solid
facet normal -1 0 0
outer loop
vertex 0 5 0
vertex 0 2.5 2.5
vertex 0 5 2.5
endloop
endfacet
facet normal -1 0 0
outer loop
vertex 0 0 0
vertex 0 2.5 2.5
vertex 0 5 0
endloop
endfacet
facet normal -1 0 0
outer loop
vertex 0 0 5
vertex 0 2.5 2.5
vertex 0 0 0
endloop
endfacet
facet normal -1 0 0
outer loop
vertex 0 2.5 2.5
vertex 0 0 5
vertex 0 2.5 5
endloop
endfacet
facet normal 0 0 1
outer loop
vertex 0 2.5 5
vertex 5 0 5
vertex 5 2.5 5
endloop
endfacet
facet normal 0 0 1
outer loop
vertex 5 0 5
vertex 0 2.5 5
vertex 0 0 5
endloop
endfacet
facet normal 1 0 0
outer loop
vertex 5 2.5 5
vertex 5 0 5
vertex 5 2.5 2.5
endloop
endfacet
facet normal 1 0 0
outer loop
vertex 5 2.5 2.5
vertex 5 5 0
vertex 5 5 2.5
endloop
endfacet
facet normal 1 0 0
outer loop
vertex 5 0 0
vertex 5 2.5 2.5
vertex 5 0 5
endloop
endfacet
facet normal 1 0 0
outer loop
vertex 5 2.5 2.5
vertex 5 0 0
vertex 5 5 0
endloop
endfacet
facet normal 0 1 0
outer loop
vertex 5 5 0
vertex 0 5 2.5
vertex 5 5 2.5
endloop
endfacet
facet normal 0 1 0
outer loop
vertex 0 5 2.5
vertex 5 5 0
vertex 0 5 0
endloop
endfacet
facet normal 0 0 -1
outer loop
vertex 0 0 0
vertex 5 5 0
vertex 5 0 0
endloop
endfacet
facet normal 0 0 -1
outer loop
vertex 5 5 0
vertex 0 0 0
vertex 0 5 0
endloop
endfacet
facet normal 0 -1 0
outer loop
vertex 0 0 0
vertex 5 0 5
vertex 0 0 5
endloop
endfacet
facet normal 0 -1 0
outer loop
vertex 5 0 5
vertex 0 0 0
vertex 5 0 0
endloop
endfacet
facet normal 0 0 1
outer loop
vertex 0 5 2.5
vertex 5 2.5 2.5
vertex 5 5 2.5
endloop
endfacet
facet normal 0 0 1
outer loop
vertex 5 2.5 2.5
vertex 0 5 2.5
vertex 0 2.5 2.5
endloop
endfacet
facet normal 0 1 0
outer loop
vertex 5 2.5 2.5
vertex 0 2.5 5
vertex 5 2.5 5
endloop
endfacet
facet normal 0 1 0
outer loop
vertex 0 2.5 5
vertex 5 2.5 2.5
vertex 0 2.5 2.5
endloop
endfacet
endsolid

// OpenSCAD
difference(){
    cube(5,5,5);
    translate([-0.5,2.5,2.5]){
        cube(6,2.5,2.5);
    }
}
